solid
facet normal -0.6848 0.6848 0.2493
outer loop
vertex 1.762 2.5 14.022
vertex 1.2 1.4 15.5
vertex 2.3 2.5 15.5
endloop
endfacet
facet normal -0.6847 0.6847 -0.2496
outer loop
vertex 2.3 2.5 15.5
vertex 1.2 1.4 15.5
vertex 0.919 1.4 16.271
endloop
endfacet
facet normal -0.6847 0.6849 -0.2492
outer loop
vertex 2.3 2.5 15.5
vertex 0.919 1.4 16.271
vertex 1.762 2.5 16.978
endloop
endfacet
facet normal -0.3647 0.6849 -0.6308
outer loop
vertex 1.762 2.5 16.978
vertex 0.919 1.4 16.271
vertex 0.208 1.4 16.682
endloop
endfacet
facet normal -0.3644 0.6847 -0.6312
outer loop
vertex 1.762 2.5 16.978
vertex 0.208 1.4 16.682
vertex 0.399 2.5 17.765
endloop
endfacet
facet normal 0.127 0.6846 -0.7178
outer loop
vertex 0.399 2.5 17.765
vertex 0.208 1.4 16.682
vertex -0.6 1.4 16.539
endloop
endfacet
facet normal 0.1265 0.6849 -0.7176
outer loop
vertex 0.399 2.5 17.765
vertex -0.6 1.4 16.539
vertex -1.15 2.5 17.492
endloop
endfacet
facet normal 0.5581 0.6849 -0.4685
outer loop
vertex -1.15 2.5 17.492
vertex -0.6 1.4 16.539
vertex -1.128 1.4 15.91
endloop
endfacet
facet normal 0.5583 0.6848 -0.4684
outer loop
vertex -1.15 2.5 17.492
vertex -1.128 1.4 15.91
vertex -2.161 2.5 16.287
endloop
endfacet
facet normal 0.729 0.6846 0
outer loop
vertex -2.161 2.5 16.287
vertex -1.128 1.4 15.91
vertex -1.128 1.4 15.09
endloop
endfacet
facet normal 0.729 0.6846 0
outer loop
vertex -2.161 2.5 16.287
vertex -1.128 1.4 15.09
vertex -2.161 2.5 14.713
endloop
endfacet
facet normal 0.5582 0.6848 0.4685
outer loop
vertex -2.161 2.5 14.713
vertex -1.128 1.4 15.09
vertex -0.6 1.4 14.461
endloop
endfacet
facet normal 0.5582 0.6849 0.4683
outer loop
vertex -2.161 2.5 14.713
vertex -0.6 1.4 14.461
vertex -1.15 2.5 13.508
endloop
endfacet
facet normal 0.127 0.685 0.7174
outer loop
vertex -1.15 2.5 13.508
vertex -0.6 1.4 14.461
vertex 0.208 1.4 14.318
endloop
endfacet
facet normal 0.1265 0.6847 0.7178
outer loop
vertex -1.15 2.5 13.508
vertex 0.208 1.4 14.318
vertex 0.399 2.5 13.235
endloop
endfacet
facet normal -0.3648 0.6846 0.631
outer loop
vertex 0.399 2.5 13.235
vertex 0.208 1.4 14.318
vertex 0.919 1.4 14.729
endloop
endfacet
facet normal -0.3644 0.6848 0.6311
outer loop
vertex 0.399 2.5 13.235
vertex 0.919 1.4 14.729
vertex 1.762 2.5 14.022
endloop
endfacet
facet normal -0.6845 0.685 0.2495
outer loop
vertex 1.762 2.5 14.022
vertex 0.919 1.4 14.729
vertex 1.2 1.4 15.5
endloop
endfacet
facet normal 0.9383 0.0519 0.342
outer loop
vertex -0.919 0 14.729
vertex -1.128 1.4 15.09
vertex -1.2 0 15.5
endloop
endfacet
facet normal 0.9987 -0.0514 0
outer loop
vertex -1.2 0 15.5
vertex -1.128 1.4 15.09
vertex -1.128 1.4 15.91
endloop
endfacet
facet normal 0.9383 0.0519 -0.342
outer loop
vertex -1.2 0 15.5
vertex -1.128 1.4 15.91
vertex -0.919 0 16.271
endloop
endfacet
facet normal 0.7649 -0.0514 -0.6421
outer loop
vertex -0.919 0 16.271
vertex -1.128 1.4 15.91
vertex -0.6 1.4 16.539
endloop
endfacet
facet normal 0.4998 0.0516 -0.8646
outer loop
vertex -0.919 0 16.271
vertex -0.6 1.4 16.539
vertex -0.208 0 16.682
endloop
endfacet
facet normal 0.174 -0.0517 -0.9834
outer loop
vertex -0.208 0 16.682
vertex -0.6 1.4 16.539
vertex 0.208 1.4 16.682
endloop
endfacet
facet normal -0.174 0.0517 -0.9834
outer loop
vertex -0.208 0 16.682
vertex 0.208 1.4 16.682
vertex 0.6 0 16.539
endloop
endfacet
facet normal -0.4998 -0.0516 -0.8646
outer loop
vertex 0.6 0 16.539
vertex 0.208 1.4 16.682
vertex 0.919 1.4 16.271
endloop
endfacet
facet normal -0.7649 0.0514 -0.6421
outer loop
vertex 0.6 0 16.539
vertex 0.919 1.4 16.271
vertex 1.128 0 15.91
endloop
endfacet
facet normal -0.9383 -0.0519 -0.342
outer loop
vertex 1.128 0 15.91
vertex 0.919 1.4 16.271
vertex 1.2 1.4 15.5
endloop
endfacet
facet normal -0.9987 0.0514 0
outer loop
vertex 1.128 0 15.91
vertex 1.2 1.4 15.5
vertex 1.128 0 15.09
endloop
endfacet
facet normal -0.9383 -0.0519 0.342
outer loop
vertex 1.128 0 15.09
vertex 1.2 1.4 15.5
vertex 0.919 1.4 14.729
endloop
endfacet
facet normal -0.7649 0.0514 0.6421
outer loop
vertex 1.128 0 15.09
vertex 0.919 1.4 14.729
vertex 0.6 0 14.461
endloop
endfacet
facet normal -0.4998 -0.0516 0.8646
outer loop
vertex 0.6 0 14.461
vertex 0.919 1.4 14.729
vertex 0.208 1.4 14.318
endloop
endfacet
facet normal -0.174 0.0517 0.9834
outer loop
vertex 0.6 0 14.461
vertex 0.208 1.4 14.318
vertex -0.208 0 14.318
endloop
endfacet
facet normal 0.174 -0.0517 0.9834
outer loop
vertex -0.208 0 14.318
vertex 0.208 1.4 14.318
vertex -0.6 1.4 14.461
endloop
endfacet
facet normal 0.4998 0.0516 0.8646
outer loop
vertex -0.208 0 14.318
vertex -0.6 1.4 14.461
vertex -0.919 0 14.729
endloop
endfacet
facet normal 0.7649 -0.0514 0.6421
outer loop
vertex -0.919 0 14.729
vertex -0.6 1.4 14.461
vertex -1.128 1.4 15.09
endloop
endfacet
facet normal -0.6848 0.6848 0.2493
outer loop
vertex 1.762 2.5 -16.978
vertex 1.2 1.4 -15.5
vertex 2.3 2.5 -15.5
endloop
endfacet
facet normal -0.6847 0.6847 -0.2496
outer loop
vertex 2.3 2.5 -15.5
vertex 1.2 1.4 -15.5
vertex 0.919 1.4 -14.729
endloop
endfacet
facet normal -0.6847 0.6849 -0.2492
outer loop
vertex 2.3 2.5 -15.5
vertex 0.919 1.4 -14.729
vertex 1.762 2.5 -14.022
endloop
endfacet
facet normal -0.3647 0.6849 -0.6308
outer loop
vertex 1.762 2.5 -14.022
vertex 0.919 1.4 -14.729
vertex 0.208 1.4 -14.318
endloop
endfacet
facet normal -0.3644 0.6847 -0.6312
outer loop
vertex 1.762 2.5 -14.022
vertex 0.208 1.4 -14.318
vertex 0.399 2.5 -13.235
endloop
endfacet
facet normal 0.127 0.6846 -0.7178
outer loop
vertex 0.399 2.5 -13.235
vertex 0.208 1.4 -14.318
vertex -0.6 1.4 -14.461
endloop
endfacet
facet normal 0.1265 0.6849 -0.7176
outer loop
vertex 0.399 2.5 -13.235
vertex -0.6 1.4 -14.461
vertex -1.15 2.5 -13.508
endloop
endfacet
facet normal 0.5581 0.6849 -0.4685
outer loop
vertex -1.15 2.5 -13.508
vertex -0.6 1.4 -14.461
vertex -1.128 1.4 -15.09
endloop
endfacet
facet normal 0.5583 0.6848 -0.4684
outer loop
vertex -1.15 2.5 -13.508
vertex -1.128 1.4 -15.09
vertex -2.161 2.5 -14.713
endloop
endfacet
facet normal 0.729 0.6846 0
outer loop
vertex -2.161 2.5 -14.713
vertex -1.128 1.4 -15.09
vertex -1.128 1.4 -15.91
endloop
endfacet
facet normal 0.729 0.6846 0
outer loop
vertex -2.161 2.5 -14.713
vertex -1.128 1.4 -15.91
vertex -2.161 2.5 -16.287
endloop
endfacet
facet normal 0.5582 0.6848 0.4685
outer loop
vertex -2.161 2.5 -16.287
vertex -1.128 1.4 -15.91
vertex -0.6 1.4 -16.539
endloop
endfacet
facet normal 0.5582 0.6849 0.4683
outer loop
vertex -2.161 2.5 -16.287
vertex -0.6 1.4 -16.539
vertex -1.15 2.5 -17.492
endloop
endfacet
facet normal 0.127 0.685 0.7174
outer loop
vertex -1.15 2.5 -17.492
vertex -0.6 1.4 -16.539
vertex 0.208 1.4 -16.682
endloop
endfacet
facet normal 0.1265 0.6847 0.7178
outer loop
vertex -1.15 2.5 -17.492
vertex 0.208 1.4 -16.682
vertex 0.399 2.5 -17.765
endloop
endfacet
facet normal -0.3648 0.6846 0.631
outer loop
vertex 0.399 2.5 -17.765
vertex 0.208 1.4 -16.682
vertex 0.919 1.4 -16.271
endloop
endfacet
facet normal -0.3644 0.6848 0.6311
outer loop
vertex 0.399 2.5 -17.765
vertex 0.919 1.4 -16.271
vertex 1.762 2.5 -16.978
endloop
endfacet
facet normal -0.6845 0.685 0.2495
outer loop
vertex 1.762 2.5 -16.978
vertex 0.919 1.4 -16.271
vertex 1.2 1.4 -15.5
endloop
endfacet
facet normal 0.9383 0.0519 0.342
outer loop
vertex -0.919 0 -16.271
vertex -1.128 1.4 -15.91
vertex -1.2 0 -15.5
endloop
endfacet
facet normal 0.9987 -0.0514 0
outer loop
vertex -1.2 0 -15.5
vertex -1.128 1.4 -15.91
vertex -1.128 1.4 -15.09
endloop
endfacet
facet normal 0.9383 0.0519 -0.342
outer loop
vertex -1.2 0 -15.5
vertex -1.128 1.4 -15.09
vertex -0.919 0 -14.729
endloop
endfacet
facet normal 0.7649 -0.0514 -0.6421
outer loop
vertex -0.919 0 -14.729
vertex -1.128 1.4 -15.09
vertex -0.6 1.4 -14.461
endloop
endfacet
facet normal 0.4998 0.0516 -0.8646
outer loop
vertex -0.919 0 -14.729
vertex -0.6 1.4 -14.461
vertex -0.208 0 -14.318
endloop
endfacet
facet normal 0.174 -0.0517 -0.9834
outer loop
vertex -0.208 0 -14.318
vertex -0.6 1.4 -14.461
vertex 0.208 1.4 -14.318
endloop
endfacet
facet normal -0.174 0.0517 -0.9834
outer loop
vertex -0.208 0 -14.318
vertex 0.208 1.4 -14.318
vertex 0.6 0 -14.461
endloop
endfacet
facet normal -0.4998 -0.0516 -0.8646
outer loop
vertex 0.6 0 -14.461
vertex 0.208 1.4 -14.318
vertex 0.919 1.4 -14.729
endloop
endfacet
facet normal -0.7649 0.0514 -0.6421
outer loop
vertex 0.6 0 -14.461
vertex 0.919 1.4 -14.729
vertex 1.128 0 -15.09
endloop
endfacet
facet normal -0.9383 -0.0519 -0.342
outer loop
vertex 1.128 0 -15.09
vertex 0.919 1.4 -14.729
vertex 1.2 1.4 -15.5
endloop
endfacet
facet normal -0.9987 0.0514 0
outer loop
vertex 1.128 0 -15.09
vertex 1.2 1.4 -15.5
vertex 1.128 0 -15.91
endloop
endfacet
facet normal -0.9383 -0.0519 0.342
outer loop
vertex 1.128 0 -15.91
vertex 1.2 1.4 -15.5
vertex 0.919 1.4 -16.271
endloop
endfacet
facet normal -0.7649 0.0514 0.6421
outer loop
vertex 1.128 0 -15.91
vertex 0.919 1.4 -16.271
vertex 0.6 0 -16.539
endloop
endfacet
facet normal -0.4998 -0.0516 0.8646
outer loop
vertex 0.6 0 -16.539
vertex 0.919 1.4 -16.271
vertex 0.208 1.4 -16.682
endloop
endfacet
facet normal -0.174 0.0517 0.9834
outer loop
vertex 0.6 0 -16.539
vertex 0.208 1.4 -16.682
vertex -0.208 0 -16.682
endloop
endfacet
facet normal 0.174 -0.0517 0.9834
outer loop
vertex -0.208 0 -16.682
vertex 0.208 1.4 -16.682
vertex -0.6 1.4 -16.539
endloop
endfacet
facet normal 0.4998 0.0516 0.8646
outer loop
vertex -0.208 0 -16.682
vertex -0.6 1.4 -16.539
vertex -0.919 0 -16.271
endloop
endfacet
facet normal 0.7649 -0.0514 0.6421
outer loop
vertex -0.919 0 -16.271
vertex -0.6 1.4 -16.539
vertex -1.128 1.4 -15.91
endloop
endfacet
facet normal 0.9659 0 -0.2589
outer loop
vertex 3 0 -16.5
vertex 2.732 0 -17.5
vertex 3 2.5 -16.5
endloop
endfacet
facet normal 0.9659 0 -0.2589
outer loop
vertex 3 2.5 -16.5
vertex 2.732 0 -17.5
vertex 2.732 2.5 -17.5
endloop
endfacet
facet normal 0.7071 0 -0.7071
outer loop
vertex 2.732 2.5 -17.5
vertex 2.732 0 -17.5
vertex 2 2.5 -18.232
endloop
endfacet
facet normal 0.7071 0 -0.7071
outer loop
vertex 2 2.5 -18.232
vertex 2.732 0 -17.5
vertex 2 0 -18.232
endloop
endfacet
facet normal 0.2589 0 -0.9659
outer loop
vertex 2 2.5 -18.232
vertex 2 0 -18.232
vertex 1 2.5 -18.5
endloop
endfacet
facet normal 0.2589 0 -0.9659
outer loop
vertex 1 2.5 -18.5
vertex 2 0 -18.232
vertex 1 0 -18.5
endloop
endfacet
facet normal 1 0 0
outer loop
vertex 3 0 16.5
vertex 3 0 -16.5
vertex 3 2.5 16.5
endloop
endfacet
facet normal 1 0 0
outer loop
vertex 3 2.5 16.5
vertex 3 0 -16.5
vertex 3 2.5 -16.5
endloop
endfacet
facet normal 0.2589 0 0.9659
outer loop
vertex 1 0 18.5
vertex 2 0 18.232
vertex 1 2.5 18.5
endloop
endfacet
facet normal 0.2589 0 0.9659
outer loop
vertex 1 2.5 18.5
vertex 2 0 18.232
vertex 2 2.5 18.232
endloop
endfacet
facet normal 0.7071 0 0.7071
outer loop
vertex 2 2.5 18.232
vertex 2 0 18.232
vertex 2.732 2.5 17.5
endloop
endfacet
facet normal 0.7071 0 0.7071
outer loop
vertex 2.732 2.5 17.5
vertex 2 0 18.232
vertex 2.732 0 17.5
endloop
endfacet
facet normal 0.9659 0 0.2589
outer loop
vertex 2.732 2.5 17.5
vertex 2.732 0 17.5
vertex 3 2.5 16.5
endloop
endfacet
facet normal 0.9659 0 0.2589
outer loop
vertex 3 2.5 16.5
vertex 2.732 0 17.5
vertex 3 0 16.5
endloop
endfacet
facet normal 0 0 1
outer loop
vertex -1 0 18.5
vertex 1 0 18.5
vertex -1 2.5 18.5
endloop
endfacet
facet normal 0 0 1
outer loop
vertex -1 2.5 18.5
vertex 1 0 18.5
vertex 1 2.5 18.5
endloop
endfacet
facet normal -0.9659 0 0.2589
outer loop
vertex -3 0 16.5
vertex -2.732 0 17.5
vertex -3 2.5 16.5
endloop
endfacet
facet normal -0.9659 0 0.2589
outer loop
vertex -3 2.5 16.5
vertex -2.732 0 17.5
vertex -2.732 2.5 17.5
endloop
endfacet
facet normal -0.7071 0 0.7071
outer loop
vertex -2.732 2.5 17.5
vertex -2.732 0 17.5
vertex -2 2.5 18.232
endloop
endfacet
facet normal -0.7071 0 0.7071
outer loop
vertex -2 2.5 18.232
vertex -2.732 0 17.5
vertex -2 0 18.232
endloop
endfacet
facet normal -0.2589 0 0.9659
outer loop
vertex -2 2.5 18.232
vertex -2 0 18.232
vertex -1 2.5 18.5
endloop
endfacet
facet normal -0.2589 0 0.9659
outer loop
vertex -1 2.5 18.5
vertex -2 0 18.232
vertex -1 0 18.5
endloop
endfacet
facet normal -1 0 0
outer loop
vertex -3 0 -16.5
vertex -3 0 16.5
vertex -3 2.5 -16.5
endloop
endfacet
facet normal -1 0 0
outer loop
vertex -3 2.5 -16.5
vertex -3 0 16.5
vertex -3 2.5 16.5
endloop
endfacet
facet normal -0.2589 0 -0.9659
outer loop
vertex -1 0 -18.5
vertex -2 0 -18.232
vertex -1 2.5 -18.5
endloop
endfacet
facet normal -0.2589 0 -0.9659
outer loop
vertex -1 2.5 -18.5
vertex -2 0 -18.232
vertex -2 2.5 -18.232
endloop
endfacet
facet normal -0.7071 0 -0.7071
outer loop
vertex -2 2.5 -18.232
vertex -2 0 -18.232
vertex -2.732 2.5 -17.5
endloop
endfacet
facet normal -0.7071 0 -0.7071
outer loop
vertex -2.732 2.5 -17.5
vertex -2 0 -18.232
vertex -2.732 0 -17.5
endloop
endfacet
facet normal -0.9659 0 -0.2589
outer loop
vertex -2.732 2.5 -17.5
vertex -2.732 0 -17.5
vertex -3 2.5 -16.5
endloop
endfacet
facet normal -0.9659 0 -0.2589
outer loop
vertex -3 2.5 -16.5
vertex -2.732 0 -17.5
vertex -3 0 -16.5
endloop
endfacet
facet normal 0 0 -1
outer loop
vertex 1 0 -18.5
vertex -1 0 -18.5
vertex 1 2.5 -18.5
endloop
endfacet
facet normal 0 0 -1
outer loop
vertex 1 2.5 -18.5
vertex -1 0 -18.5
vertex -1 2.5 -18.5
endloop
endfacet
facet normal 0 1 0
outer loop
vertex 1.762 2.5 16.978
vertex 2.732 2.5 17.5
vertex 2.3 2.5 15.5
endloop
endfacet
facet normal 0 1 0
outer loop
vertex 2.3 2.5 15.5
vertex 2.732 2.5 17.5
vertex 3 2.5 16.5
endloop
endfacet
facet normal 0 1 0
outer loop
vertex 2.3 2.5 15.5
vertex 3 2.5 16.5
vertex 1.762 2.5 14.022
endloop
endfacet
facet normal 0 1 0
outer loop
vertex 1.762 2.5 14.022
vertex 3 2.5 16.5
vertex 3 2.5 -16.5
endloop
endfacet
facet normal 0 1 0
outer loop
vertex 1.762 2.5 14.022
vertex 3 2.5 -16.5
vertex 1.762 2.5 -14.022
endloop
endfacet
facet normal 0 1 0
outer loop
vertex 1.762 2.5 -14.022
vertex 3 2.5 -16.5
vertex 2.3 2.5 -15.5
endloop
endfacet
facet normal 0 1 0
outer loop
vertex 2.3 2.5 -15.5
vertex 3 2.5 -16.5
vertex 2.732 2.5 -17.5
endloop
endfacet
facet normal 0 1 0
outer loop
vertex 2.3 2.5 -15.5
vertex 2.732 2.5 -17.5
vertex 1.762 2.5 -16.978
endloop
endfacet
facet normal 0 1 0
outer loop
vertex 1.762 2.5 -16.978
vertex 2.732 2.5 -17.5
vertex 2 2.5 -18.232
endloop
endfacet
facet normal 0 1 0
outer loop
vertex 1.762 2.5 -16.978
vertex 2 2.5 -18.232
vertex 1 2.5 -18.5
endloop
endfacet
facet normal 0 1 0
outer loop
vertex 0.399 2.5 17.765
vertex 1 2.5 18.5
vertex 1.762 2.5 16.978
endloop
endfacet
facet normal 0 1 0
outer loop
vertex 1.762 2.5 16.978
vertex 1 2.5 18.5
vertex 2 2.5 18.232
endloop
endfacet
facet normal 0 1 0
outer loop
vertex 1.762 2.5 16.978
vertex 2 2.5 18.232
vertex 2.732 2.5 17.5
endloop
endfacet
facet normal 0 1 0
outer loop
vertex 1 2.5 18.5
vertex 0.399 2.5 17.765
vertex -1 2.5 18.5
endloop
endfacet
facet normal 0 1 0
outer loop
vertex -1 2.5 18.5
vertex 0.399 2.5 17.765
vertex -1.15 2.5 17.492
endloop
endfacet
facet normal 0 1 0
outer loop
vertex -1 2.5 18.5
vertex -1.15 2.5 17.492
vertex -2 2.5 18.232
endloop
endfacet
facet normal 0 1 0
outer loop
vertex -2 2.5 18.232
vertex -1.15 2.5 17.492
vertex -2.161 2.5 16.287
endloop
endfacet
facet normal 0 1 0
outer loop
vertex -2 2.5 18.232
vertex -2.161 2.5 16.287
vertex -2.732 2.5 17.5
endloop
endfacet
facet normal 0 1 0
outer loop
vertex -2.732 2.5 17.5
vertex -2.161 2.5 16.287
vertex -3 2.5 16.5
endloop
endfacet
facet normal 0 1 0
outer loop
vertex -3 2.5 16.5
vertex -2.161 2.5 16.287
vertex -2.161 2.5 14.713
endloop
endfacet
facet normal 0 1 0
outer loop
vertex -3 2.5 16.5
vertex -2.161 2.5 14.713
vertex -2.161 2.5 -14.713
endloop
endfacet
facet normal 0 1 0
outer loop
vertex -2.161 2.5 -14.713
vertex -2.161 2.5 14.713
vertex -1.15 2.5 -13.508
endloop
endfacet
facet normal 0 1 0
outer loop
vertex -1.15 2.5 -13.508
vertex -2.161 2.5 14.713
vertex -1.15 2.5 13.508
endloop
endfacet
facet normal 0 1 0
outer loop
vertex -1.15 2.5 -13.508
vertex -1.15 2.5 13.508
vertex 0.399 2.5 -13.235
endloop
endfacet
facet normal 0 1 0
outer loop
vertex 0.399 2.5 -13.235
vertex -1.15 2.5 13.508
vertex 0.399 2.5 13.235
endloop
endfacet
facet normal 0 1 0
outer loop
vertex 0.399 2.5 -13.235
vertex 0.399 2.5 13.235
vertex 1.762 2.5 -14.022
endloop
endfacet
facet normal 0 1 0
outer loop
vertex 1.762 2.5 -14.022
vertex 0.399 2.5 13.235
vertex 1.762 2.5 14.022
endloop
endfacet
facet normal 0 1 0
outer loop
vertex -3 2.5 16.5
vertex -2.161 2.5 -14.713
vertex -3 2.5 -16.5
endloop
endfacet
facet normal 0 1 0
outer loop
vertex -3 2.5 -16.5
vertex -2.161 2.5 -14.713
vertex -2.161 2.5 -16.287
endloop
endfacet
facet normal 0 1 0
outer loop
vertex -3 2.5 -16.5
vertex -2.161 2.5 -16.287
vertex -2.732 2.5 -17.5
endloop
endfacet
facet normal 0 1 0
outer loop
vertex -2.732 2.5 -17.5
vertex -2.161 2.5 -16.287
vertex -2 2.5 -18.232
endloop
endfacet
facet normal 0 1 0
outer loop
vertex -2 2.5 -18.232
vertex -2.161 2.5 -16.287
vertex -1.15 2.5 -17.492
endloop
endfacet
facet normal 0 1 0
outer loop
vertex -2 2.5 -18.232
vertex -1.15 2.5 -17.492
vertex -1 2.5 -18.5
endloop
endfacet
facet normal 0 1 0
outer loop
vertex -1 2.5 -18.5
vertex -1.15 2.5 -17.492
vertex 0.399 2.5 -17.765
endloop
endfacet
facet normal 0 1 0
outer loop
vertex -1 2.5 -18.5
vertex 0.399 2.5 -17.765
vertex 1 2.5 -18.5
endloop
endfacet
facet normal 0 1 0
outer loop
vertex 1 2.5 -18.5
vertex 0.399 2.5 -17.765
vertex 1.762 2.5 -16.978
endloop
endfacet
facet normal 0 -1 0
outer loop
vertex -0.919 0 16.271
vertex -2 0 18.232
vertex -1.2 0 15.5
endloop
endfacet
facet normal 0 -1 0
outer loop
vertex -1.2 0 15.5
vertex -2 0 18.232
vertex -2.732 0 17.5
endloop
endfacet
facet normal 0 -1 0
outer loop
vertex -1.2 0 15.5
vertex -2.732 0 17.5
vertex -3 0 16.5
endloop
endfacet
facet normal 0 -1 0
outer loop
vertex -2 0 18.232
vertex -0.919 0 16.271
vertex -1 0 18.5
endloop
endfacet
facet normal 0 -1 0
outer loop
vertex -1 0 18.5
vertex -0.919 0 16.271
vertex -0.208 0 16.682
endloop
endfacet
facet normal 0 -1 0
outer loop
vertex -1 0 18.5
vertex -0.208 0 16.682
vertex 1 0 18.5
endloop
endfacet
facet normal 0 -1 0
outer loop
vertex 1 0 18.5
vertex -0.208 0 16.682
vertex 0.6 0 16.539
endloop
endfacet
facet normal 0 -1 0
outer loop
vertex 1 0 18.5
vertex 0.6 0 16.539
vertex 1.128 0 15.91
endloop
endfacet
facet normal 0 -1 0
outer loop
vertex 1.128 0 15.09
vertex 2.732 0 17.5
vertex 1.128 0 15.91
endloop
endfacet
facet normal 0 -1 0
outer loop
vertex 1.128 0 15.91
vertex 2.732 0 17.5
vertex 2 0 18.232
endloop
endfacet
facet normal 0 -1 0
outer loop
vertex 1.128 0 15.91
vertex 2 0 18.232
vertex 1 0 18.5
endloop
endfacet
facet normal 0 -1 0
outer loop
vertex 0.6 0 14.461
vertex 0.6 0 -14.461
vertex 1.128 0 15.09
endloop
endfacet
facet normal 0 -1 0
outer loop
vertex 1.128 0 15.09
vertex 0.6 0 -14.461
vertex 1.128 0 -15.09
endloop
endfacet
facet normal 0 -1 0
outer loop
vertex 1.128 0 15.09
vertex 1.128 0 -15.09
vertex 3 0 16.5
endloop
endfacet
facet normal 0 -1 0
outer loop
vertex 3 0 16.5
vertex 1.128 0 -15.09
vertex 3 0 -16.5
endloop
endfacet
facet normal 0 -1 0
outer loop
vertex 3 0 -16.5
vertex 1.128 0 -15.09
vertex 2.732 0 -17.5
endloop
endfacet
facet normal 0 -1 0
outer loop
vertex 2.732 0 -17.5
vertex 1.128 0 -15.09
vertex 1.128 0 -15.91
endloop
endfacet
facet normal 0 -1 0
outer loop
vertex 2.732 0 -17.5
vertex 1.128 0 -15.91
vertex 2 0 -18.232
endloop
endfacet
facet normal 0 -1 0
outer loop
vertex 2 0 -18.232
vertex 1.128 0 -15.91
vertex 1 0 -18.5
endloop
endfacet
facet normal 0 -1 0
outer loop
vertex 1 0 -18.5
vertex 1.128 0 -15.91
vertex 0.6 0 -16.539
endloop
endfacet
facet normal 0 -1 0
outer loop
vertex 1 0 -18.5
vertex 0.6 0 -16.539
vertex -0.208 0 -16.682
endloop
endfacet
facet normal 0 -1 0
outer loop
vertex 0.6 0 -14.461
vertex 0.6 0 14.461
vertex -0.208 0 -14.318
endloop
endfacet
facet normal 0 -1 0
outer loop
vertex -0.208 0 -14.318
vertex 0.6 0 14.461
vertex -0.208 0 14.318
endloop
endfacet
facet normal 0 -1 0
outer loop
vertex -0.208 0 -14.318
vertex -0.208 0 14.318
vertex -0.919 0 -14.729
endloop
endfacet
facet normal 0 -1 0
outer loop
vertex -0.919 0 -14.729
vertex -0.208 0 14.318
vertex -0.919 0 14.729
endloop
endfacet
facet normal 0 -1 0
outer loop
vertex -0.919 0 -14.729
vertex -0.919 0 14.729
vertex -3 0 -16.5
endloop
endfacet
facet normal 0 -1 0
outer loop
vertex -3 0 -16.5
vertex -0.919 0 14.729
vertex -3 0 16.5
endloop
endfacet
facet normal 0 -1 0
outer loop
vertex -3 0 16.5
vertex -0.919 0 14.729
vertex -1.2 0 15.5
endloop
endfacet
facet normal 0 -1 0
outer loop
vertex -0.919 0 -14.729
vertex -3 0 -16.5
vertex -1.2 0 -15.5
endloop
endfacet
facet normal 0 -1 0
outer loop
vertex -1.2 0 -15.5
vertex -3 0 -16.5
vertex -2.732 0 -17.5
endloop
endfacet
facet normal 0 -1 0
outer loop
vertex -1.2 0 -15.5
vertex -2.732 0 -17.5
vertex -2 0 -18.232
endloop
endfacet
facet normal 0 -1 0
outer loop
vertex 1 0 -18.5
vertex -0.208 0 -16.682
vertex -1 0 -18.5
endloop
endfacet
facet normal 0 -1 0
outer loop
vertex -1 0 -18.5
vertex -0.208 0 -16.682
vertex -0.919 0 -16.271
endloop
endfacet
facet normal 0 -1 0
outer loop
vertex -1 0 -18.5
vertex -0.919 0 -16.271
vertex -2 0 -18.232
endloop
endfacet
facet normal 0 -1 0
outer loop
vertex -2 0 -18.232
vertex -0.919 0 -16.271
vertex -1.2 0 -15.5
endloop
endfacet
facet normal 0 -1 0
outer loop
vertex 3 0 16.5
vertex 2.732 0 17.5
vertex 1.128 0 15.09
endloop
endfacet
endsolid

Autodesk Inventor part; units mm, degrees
ref_plane "YZ Plane" through (0, 0, 0) normal (1, 0, 0) x (0, 1, 0)
ref_plane "XZ Plane" through (0, 0, 0) normal (0, 1, 0) x (-1, 0, 0)
ref_plane "XY Plane" through (0, 0, 0) normal (0, 0, 1) x (1, 0, 0)
sketch "Эскиз1" plane through (0, 0, 0) normal (0, 1, 0) x (-1, 0, 0)
  line L0 (-1, 18.5) -> (1, 18.5)
  line L1 (3, 16.5) -> (3, -16.5)
  line L2 (1, -18.5) -> (-1, -18.5)
  line L3 (-3, -16.5) -> (-3, 16.5)
  line L4 (-3, 18.5) -> (3, -18.5) construction
  line L5 (3, 18.5) -> (-3, -18.5) construction
  arc A0 (3, 16.5) -> (1, 18.5) centre (1, 16.5) ccw
  arc A1 (-1, 18.5) -> (-3, 16.5) centre (-1, 16.5) ccw
  arc A2 (1, -18.5) -> (3, -16.5) centre (1, -16.5) ccw
  arc A3 (-3, -16.5) -> (-1, -18.5) centre (-1, -16.5) ccw
  circle A4 centre (0, 15.5) radius 2.3
  line L6 (0, 0) -> (0, 8.5528) construction
  line L7 (3, 0) -> (-3, 0) construction
  circle A5 centre (0, -15.5) radius 2.3
  dimension "d0" = 6
  dimension "d1" = 2
  dimension "d2" = 2
  dimension "d3" = 4.6
  dimension "d4" = 3
  dimension "d5" = 15.5
extrude "Выдавливание1" add sketch "Эскиз1" along normal blind 2.5 contours L0 A0 L1 A2 L2 A3 L3 A1 | A4 | A5
sketch "Эскиз2" plane through (0, 2.5, 0) normal (0, 1, 0) x (1, 0, 0)
  circle A0 centre (0, -15.5) radius 2.3 projected
  circle A1 centre (0, 15.5) radius 2.3 projected
  point P0 (0, 0)
hole "Отверстие1" at (0, 2.5, 15.5) at (0, 2.5, -15.5) direction (0, -1, 0) diameter 2.4 depth 4 countersink diameter 4.6 countersink angle 90 clearance for "с потайной головкой ГОСТ 12876-67" size "M2" standard "ГОСТ"
properties part number "кронштейн wemos"
